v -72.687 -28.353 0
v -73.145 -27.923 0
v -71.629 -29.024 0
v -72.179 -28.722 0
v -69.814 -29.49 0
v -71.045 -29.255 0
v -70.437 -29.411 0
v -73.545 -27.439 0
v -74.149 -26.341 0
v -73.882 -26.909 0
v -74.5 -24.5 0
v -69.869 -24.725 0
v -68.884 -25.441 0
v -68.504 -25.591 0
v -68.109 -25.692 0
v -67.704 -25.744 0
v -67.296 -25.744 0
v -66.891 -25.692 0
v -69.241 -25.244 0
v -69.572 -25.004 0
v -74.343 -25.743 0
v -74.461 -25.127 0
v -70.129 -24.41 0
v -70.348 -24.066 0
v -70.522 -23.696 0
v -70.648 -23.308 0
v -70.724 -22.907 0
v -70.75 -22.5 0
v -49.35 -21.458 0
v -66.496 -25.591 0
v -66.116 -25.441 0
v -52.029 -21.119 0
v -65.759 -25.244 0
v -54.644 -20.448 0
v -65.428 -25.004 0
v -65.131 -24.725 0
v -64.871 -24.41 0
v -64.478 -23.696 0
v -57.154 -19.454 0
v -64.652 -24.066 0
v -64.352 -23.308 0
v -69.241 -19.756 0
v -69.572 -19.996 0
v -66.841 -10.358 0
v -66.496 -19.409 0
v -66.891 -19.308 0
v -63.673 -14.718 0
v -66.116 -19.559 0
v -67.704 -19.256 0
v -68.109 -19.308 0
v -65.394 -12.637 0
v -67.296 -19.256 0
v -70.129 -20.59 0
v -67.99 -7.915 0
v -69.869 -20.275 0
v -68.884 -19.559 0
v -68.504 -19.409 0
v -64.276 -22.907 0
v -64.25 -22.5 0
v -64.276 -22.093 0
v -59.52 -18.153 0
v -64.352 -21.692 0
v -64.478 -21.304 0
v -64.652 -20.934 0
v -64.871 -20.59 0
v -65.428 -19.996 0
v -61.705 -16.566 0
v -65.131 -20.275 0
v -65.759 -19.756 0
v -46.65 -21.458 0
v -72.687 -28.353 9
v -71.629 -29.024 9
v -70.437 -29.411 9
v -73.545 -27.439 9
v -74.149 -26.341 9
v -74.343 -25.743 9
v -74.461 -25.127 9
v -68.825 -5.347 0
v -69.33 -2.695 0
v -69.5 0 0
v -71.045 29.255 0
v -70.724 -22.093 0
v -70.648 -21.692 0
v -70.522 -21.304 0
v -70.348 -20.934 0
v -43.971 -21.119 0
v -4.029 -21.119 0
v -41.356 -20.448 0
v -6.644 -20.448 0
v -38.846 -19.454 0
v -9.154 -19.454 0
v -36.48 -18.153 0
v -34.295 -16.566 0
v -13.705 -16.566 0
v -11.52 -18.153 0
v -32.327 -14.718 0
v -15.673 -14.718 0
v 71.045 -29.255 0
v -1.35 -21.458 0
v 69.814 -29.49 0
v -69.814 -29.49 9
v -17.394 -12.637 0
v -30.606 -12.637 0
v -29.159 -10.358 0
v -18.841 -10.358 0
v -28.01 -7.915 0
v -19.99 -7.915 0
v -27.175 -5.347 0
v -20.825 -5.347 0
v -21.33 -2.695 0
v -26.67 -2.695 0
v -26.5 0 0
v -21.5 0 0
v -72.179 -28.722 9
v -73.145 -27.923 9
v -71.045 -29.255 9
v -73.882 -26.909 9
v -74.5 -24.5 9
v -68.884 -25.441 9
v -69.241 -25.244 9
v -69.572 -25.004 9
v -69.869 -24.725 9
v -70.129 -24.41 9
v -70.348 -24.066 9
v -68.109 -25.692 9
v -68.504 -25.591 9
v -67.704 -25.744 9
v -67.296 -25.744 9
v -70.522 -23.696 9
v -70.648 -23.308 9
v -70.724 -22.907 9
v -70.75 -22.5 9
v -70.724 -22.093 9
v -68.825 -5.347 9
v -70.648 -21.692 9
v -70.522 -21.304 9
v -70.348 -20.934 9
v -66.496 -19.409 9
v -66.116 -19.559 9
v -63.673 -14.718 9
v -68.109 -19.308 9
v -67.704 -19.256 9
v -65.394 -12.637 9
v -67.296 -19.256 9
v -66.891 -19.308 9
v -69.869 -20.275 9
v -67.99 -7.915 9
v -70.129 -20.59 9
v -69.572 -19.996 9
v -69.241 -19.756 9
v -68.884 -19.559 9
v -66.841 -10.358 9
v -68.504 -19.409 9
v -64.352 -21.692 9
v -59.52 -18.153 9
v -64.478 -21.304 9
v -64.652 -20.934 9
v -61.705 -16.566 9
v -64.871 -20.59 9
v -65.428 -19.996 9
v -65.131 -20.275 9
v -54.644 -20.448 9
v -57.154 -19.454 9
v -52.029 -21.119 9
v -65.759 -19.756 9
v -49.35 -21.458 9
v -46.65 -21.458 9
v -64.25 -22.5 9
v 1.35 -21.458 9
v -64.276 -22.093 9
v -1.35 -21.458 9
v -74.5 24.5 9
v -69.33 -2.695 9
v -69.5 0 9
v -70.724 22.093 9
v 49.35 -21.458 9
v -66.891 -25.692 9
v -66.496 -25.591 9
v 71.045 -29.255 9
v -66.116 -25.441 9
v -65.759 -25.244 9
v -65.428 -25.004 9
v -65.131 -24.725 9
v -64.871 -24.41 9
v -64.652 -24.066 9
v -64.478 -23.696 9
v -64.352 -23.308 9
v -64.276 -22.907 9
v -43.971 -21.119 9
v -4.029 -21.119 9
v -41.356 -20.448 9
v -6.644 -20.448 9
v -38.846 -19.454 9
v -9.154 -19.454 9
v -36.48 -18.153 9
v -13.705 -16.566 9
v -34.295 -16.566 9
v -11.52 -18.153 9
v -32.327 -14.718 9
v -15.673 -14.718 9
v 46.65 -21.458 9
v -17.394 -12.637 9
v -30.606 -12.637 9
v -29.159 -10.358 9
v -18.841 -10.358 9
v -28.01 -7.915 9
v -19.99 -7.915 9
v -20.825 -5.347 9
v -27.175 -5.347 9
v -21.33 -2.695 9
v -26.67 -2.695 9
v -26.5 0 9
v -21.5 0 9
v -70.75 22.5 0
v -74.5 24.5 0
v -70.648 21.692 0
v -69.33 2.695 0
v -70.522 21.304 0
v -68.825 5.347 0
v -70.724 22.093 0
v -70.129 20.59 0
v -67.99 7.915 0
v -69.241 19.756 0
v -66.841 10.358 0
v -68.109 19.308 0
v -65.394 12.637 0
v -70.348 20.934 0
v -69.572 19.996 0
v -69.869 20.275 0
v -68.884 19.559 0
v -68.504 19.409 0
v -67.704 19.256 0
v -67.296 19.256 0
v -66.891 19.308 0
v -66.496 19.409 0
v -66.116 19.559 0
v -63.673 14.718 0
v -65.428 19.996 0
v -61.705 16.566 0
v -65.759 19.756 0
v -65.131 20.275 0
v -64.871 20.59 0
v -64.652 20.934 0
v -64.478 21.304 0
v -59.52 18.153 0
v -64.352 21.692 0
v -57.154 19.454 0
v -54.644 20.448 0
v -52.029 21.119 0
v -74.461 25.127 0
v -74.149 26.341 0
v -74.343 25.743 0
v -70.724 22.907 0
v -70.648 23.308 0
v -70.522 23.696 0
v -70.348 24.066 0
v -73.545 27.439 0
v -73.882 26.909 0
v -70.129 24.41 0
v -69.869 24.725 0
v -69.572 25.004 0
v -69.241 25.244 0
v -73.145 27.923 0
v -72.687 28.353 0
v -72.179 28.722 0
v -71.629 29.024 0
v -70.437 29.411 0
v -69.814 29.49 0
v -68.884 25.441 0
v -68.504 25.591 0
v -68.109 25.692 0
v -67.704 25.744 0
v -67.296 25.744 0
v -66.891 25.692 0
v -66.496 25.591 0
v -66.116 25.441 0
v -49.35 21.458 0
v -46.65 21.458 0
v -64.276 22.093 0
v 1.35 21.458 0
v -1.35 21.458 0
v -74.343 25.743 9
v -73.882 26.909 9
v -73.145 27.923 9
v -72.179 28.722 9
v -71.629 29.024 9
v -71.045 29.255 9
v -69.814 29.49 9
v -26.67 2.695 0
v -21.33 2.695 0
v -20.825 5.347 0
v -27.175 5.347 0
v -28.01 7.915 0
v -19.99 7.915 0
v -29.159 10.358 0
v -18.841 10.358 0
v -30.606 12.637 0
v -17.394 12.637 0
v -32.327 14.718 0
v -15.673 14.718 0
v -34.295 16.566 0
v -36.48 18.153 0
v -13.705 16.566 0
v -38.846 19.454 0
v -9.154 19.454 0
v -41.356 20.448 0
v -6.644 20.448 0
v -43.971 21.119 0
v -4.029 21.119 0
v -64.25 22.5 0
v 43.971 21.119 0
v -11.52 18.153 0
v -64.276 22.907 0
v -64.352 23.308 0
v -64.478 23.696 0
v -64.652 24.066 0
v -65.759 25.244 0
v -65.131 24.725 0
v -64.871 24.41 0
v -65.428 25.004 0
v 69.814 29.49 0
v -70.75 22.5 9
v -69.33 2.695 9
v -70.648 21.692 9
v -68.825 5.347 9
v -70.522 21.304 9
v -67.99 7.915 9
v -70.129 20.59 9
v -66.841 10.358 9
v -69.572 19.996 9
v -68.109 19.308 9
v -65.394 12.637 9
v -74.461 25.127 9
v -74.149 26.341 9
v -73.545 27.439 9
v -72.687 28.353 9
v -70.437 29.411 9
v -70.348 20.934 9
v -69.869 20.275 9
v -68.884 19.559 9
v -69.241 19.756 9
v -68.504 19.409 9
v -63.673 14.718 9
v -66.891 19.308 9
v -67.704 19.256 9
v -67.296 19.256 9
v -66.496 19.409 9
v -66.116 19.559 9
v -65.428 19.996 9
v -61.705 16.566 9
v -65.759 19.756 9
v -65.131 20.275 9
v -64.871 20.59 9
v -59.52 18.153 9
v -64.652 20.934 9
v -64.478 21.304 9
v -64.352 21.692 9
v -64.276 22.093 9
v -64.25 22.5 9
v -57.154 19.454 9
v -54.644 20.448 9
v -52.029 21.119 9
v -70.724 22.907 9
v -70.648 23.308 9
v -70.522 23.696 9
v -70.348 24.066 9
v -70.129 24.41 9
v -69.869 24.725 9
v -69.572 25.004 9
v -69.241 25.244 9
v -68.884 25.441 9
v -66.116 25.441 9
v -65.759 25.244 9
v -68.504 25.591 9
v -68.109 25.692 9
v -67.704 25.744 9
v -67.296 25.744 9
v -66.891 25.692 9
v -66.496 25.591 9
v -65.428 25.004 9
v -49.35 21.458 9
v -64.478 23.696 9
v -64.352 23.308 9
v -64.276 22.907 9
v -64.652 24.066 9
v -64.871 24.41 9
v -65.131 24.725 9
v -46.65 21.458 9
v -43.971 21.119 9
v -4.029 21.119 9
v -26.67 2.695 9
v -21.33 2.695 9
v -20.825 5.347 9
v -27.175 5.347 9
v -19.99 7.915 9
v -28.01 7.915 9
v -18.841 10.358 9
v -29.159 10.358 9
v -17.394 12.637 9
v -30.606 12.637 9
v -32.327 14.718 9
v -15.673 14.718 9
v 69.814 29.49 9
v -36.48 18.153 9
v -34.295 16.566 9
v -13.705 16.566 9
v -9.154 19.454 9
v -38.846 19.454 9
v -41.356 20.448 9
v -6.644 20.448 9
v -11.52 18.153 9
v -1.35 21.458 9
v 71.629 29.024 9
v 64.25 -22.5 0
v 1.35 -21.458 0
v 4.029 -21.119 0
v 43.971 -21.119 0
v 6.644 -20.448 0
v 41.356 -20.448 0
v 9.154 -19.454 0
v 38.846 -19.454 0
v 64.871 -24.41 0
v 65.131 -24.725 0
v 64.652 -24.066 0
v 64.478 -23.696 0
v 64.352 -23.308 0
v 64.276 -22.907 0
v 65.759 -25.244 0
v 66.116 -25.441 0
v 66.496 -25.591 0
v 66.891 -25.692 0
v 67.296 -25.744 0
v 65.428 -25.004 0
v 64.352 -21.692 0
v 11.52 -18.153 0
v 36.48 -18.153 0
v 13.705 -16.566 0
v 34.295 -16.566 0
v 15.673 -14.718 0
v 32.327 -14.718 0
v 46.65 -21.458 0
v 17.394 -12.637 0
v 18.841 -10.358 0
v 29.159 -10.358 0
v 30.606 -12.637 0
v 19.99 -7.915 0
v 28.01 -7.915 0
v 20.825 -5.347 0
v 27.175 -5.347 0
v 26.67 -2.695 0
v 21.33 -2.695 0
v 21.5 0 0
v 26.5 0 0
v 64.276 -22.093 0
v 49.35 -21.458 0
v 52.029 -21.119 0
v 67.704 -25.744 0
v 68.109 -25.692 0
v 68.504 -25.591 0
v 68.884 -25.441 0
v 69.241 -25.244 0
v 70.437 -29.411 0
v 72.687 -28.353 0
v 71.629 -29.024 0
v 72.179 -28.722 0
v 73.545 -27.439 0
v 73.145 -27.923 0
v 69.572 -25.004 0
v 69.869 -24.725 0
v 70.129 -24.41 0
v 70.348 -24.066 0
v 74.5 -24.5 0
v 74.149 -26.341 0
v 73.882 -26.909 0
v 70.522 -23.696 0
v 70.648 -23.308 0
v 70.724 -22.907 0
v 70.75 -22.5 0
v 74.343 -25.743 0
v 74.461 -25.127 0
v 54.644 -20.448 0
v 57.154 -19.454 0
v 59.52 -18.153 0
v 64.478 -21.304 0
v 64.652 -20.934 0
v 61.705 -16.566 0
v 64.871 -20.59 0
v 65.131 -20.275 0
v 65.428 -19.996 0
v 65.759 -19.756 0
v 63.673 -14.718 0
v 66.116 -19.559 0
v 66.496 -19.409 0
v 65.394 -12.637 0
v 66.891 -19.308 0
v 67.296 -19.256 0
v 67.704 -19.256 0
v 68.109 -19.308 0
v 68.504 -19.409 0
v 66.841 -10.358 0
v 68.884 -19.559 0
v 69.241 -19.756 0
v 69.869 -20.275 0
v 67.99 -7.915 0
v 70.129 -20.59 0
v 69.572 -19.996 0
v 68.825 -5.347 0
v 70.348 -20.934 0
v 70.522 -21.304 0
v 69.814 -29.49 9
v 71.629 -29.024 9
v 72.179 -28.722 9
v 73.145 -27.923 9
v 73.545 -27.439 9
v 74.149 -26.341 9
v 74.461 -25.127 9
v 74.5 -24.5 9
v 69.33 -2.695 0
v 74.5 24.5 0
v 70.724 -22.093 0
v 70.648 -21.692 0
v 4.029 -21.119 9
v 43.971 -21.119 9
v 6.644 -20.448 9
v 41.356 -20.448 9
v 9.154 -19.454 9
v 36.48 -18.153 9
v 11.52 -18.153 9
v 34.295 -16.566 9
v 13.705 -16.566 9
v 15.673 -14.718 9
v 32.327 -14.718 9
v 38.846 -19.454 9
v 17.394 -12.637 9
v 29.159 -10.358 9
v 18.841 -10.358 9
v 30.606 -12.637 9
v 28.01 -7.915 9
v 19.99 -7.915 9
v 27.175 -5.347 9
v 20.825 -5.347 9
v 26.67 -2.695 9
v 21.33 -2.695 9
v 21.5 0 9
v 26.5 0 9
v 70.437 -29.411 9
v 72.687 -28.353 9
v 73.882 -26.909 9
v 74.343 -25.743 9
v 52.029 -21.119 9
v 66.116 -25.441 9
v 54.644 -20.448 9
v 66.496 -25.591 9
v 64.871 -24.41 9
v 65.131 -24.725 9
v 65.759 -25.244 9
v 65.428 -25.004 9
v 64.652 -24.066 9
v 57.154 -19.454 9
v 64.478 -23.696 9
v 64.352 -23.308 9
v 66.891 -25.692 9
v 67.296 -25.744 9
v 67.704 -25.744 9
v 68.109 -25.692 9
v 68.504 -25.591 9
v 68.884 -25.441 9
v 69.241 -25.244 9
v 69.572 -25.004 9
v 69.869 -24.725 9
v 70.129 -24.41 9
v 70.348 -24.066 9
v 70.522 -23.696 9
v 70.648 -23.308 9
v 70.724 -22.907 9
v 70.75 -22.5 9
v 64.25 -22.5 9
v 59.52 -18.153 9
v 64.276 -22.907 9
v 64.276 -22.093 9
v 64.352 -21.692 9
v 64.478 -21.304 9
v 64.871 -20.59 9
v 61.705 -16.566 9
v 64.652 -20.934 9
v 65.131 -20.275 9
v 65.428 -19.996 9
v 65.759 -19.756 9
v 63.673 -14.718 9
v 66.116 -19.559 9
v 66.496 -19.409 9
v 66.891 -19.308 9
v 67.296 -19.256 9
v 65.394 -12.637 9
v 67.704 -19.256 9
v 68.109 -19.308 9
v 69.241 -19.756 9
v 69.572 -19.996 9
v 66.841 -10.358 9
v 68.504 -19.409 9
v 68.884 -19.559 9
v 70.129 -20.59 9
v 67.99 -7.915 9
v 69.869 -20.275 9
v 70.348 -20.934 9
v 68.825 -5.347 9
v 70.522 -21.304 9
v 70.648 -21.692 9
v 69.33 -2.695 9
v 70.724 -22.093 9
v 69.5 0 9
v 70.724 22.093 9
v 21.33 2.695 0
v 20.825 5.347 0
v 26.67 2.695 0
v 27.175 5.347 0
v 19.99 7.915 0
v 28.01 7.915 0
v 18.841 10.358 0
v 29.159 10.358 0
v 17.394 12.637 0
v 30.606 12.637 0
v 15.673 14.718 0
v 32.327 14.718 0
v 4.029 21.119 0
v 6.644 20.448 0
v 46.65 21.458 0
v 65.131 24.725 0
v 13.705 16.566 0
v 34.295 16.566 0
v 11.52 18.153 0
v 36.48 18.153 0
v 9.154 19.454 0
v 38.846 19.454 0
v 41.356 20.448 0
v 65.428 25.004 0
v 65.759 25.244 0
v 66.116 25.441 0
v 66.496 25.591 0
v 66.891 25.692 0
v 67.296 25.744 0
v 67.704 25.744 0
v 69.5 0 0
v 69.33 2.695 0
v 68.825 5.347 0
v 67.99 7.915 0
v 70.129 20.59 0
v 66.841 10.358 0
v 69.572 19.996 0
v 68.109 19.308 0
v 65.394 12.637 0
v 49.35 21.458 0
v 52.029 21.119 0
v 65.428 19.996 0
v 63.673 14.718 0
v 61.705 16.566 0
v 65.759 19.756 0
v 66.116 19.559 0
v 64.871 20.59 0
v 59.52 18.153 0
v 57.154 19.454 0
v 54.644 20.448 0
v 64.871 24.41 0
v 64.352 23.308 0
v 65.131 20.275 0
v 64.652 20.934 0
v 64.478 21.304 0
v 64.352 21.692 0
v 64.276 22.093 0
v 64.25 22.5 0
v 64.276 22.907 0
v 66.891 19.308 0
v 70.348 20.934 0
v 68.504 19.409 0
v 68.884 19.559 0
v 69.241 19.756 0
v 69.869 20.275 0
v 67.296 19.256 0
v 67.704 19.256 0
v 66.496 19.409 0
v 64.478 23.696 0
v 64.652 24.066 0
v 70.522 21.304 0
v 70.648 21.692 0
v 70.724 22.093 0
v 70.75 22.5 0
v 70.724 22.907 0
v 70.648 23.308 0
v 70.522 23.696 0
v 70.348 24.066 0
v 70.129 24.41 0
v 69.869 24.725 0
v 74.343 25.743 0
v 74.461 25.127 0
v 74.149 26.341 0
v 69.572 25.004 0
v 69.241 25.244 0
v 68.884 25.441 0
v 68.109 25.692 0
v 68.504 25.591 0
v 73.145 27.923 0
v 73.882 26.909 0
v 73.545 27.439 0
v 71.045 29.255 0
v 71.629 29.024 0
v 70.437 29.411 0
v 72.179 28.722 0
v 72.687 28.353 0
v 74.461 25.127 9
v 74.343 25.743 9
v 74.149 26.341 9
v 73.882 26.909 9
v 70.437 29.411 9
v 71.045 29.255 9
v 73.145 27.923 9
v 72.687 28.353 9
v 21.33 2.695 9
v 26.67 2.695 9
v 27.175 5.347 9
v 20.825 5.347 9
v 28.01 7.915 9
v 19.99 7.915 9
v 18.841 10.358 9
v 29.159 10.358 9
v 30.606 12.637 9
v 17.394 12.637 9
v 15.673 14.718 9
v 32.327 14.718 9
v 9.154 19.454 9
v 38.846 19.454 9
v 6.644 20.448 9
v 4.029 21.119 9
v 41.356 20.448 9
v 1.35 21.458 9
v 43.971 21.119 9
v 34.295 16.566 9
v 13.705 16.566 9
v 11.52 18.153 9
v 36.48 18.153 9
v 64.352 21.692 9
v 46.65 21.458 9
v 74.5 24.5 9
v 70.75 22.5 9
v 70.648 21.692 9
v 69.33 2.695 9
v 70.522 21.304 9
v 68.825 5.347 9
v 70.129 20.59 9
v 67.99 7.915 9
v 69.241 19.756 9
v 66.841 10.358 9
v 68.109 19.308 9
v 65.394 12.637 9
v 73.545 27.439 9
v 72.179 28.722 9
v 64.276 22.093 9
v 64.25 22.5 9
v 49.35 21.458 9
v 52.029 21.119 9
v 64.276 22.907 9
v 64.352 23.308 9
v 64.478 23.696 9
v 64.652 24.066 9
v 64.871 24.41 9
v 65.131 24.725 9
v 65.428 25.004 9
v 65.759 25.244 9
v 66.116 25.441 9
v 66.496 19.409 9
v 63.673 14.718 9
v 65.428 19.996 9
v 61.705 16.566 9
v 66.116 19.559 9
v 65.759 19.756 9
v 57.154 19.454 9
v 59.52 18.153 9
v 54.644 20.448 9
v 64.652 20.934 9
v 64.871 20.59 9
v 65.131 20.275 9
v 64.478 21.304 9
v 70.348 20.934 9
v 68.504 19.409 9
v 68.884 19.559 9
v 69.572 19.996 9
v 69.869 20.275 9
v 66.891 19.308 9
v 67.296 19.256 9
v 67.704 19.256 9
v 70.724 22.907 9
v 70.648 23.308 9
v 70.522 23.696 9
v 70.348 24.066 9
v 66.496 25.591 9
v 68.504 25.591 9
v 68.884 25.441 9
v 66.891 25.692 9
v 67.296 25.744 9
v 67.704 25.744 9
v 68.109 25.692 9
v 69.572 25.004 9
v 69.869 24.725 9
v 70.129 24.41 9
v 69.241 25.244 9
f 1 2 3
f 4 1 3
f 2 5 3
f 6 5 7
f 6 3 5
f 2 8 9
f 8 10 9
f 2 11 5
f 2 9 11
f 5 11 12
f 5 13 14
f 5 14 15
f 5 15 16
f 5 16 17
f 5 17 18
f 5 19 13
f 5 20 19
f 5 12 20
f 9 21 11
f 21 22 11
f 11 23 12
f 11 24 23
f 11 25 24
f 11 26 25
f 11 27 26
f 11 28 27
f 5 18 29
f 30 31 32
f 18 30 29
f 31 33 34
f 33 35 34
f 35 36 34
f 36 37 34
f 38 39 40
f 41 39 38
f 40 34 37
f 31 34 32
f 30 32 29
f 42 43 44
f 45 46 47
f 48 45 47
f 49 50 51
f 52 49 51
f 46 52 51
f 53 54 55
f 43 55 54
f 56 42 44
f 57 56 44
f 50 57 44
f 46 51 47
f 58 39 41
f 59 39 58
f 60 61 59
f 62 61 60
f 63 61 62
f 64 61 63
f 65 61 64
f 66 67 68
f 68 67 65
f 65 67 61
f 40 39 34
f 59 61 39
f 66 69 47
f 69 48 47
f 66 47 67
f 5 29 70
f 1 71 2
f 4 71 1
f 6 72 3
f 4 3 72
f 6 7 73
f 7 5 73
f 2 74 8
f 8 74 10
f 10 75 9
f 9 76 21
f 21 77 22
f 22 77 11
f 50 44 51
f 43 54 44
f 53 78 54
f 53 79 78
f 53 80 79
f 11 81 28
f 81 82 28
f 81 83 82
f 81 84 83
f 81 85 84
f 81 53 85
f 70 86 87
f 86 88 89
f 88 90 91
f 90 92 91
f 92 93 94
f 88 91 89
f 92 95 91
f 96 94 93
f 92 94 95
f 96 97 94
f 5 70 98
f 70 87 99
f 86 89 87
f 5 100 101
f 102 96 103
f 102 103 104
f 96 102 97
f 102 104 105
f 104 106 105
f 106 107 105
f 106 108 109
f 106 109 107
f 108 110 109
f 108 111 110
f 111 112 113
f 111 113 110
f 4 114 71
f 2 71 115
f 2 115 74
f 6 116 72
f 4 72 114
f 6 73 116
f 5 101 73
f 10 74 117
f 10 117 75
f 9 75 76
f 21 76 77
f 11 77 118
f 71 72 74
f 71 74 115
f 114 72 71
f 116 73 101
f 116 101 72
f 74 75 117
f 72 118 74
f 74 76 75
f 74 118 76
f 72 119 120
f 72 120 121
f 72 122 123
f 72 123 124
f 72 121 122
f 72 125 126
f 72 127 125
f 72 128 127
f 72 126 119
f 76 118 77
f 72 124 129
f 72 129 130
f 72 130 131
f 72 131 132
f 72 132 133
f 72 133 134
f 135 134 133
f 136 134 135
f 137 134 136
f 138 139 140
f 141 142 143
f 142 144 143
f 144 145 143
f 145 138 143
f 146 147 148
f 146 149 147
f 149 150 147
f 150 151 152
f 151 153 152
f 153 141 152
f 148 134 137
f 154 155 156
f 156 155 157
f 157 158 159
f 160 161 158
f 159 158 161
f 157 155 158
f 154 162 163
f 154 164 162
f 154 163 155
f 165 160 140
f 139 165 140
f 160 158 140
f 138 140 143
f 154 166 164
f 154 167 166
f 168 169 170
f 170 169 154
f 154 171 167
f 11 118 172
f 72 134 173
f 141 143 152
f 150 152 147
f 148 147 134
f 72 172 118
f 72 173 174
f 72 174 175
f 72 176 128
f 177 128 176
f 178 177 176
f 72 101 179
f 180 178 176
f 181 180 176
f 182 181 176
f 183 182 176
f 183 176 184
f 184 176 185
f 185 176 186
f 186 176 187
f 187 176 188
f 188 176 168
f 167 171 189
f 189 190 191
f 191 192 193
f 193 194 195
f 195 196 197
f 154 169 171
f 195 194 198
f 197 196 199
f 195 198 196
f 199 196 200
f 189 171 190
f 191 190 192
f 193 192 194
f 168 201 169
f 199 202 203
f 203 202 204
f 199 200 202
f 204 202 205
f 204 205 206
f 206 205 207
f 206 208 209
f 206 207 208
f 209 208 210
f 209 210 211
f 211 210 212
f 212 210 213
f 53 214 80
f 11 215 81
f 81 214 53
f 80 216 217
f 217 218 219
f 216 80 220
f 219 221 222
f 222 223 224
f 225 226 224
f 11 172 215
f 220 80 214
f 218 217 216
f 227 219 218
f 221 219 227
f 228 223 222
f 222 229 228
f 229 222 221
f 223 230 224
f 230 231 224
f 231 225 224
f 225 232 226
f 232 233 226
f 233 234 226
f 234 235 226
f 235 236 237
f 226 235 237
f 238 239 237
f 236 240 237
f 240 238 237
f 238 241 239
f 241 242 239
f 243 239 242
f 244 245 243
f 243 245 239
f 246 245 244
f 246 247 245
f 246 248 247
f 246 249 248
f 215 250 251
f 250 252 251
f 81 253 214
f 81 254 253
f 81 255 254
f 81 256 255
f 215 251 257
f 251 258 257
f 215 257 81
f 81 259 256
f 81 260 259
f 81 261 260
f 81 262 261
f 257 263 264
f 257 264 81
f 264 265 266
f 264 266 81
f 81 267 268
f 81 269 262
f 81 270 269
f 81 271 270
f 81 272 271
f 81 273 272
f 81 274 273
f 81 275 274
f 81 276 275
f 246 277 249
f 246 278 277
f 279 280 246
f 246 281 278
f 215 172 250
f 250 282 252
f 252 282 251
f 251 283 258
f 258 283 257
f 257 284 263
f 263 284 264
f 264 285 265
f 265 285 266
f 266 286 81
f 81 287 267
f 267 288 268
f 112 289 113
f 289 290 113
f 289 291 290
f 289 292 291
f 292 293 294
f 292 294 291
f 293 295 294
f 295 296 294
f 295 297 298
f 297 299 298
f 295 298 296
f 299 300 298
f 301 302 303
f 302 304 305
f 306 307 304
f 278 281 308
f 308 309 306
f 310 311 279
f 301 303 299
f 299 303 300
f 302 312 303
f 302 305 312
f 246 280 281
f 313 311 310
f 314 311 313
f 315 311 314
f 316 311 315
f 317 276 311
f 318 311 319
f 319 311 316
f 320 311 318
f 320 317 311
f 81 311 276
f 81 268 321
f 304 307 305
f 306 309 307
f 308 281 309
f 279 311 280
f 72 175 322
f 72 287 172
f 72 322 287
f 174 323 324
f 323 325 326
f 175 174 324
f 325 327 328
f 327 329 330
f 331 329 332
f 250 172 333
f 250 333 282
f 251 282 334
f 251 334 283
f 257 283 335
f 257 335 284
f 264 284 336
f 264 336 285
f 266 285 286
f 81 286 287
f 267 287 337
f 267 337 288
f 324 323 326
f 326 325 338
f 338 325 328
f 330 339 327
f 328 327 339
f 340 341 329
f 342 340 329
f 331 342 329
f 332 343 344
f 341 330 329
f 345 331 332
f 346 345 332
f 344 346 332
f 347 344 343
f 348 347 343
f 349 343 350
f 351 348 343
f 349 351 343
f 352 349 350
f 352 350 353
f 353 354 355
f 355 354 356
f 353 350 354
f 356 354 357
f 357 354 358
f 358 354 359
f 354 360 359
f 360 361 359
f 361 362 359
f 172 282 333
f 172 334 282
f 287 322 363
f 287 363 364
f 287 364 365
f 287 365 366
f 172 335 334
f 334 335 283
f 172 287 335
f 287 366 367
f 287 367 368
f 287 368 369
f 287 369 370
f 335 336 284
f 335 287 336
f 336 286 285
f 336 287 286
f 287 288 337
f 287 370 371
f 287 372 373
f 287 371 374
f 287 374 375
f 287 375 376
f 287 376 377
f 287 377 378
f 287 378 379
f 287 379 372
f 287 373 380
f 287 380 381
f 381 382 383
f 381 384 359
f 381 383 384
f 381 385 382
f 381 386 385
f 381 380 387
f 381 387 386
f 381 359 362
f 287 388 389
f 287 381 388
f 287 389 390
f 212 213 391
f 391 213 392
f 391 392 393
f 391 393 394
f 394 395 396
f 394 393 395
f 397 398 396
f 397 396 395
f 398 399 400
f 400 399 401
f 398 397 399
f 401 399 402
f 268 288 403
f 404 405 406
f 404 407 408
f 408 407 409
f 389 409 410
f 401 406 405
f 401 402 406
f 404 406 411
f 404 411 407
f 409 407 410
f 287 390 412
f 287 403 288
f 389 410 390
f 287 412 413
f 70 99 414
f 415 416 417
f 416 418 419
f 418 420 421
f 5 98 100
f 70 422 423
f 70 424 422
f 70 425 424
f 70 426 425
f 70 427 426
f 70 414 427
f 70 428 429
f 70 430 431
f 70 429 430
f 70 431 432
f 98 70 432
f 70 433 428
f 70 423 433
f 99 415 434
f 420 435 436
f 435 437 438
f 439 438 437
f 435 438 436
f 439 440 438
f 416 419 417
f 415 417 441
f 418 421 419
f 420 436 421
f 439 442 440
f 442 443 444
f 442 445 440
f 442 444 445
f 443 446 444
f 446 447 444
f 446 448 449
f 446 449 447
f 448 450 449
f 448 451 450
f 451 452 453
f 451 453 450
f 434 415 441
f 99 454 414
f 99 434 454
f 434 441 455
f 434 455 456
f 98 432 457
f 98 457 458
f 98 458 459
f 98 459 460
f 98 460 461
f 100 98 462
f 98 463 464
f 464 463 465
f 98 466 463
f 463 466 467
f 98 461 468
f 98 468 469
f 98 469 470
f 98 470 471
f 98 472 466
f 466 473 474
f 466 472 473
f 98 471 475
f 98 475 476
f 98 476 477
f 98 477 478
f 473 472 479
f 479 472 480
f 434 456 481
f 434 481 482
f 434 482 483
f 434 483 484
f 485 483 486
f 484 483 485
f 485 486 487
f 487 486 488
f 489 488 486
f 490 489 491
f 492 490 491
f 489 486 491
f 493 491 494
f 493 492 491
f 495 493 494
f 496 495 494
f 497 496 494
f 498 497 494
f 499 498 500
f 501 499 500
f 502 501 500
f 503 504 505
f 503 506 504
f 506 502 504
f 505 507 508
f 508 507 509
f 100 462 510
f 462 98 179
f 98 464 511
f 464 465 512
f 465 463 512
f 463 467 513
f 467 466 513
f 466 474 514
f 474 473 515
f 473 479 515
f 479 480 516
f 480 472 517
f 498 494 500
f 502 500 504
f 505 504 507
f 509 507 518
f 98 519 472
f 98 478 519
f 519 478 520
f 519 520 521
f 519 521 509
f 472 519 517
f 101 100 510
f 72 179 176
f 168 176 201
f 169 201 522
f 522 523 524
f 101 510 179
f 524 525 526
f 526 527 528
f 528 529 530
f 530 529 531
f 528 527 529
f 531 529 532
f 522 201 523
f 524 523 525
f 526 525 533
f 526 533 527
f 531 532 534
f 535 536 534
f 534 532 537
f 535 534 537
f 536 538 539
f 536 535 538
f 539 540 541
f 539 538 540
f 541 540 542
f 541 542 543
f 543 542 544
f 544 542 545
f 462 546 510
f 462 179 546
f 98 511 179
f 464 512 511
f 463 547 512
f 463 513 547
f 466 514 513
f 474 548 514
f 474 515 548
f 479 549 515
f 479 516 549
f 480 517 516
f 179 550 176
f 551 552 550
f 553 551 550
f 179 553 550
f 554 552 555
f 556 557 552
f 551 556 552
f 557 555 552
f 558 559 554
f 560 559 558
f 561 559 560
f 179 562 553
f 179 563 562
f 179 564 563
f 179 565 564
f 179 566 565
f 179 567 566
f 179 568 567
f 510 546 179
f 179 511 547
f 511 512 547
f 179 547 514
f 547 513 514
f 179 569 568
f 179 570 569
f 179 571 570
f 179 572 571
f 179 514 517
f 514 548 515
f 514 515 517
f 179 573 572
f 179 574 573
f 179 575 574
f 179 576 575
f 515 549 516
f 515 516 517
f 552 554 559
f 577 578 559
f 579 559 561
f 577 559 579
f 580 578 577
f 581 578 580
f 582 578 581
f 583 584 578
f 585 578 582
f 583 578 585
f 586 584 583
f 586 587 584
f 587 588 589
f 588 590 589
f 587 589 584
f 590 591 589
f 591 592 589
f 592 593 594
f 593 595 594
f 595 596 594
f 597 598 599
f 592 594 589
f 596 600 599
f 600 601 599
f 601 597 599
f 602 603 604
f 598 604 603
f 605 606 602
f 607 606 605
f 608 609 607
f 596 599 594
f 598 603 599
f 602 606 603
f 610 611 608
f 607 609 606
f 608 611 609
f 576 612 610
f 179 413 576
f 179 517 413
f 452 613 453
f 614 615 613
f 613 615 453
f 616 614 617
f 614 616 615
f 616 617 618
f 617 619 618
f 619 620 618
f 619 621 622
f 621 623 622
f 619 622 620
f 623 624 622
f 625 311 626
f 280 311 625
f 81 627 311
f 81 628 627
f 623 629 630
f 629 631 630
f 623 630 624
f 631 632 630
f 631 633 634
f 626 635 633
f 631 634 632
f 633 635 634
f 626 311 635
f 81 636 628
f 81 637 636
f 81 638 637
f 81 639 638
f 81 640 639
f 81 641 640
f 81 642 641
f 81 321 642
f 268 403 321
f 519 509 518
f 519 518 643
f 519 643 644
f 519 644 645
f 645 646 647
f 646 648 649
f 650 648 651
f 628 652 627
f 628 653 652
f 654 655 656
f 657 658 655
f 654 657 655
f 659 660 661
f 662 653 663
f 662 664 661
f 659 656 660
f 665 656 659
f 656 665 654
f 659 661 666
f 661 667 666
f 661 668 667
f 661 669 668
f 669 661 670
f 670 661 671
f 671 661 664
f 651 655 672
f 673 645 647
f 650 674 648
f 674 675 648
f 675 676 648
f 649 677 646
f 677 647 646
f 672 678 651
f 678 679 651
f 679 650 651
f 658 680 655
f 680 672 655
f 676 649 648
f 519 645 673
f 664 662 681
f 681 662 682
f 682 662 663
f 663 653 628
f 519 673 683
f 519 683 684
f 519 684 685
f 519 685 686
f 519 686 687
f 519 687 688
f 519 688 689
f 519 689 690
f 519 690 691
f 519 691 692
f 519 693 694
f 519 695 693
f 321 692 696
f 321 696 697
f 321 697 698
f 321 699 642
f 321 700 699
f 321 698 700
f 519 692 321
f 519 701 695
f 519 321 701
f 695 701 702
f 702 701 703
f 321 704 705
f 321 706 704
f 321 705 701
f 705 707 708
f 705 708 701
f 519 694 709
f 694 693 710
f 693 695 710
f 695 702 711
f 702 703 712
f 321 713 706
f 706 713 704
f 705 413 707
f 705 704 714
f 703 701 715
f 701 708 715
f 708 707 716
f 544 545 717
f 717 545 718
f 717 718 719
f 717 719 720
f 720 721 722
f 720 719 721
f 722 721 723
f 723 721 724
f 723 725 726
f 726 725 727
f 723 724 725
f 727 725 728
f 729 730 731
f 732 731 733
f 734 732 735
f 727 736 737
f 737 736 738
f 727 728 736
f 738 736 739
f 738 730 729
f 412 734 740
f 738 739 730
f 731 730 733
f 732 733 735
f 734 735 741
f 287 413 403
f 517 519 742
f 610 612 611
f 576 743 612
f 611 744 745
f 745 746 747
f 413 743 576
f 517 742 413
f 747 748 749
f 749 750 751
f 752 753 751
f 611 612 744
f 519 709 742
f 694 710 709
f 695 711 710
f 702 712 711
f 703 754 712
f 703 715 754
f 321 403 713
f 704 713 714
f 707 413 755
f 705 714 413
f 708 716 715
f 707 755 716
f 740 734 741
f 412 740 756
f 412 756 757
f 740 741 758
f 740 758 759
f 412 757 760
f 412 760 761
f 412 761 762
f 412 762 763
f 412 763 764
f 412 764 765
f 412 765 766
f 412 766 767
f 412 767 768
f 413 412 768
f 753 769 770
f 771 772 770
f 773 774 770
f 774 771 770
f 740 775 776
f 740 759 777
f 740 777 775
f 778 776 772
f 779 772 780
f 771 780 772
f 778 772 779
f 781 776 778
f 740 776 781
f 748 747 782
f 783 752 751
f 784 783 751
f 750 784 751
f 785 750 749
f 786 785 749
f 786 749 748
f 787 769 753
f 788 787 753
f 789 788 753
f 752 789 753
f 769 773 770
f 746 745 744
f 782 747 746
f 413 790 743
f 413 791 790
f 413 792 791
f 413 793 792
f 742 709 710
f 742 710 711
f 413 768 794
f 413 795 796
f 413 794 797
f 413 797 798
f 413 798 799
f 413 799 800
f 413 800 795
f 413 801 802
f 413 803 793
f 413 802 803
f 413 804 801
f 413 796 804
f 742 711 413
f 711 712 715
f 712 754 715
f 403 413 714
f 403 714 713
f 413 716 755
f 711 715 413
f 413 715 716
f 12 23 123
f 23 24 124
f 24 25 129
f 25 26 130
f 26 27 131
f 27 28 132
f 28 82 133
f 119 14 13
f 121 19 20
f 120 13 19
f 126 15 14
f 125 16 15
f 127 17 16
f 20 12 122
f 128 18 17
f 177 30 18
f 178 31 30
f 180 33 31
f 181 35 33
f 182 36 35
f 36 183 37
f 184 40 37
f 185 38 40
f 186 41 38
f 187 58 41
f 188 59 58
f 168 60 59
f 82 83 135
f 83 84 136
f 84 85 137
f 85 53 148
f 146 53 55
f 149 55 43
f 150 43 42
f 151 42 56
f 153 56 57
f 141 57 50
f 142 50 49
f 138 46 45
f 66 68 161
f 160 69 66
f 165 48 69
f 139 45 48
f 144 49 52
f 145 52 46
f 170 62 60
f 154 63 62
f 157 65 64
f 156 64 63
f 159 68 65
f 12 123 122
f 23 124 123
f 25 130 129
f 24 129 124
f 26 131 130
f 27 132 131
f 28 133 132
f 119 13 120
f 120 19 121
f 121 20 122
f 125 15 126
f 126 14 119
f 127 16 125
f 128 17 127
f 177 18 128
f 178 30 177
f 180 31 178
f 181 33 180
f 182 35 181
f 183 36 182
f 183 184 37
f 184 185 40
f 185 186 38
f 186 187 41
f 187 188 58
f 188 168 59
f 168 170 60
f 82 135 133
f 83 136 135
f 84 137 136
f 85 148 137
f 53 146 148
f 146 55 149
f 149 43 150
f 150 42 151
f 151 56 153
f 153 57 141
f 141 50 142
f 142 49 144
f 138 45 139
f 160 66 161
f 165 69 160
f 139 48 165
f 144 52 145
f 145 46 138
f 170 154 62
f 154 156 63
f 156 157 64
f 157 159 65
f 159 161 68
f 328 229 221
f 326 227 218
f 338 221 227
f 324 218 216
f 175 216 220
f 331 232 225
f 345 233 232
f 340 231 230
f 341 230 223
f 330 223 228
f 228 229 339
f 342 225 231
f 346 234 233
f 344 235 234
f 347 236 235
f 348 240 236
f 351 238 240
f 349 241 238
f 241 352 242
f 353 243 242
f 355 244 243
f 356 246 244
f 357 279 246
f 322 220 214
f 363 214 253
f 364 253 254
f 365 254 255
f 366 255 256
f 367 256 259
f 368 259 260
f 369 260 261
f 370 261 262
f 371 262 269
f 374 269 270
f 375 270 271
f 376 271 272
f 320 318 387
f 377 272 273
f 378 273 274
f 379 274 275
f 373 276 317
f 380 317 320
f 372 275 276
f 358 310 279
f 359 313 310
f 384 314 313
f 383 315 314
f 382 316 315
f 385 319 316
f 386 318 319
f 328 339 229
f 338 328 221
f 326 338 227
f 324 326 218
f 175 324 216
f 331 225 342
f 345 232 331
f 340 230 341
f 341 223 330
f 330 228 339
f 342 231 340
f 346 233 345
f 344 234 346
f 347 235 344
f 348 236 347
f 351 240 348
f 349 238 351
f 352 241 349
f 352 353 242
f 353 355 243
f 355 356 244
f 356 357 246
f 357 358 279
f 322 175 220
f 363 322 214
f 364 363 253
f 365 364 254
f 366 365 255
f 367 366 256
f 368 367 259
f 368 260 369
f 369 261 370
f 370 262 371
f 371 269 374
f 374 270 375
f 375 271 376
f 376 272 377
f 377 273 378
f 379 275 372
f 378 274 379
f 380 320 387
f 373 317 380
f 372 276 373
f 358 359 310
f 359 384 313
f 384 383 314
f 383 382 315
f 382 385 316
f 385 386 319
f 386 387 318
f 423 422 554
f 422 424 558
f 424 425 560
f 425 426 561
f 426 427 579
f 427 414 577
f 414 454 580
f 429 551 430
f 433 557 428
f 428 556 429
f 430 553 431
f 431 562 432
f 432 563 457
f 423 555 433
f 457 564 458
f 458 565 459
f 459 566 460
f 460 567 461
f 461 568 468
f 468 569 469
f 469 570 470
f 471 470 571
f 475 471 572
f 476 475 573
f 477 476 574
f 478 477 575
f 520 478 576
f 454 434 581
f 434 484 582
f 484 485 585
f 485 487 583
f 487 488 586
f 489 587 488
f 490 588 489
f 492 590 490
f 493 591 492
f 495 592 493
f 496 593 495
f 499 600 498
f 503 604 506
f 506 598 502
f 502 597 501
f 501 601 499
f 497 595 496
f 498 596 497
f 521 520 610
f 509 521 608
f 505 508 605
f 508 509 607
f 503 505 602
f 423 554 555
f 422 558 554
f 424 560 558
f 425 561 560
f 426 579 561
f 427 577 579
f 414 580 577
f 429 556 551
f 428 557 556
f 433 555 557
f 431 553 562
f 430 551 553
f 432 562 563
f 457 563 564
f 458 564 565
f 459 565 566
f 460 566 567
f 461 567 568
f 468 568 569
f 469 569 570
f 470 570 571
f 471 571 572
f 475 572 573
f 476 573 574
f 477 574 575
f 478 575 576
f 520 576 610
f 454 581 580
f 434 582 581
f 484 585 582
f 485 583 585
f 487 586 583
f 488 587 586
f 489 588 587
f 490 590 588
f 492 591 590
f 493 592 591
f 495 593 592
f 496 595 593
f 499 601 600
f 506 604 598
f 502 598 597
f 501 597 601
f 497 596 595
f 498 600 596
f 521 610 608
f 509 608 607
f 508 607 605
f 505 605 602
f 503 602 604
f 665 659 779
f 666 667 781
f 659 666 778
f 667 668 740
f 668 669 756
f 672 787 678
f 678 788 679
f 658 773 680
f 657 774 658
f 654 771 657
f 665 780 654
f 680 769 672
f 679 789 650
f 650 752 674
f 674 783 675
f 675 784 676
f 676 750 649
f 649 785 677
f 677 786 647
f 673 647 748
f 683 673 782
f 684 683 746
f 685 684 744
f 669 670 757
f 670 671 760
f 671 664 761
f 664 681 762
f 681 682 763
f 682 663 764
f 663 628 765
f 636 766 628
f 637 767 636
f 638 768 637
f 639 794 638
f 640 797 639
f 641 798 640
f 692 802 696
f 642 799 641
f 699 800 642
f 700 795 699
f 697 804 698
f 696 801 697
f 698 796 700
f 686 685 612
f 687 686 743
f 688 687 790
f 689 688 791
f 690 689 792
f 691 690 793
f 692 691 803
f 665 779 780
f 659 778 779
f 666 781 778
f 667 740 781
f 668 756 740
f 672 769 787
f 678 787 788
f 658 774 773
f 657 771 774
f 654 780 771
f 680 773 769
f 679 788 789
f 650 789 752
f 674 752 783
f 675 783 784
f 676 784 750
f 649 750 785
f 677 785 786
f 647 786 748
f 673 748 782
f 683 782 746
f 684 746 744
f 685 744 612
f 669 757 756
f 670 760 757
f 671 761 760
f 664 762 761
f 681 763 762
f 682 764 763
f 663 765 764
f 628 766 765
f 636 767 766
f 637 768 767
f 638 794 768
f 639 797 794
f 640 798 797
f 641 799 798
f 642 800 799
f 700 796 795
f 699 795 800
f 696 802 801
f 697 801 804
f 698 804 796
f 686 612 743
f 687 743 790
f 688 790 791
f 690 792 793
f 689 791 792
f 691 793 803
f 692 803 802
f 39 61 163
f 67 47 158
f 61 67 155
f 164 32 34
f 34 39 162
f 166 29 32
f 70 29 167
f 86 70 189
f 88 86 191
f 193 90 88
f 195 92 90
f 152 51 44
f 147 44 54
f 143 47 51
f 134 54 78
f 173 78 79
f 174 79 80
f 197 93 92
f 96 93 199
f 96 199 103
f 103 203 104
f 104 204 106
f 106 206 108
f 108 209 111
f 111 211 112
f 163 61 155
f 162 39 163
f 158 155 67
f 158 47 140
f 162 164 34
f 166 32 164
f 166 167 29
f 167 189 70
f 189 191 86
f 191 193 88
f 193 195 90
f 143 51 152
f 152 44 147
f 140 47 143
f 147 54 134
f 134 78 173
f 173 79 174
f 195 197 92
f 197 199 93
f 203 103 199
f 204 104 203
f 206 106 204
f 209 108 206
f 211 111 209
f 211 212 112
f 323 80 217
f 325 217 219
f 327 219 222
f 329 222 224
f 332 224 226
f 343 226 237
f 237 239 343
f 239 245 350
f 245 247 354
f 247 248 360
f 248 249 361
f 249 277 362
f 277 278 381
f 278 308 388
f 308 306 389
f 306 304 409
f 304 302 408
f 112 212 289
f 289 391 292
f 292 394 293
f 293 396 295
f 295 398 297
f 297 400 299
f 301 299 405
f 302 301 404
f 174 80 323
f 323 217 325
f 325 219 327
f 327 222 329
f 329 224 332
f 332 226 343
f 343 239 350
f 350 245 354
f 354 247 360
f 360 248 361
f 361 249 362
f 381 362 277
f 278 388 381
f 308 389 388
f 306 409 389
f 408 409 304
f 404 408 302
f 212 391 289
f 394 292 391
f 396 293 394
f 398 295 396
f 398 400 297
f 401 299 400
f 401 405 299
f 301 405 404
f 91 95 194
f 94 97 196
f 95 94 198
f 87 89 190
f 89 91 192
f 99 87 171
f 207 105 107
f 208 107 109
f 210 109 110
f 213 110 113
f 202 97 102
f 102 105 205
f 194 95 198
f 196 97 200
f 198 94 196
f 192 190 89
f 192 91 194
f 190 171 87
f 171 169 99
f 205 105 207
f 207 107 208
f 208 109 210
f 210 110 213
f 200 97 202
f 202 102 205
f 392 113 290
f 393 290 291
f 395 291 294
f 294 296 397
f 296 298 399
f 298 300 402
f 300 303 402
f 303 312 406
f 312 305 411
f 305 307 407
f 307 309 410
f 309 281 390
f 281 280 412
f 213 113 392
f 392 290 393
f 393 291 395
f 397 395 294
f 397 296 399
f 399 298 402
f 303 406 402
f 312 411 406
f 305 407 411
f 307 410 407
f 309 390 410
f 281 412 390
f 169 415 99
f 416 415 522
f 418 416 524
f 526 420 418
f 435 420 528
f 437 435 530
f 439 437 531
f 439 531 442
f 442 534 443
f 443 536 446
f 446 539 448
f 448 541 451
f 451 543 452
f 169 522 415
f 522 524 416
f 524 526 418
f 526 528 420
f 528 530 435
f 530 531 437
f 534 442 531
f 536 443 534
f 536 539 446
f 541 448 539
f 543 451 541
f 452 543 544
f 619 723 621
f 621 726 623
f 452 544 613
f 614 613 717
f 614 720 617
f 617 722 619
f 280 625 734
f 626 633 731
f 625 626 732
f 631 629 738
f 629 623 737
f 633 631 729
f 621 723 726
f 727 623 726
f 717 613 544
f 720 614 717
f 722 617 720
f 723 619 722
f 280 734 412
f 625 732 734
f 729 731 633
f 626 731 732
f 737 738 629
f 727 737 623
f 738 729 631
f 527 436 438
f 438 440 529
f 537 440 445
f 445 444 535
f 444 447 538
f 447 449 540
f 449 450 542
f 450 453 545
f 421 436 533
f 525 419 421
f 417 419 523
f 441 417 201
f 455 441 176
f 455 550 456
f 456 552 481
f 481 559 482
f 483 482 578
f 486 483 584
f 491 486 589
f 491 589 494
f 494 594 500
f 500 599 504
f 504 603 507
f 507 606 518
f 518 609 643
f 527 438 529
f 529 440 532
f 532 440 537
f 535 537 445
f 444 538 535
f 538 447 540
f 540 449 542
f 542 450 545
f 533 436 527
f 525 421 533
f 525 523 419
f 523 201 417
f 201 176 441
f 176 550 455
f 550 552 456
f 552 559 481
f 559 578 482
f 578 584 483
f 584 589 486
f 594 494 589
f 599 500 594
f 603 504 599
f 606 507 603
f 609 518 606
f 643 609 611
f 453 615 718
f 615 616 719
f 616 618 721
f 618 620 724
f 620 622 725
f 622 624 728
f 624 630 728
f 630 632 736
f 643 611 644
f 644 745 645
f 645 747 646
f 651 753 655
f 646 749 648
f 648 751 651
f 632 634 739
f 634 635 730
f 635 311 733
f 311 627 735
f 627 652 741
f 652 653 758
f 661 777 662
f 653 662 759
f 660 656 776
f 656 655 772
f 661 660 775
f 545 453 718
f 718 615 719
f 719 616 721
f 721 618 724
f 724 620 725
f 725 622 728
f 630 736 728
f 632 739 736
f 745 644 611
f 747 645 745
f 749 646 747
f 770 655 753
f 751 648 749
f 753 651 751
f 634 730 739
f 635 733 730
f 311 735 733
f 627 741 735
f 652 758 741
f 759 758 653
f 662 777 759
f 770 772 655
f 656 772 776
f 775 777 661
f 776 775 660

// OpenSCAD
$fn = 50;

difference() {
	union() {
		hull() {
			translate(v = [-69.5, 24.5, 0]) {
				cylinder(h = 9, r = 5);
			}
			translate(v = [69.5, 24.5, 0]) {
				cylinder(h = 9, r = 5);
			}
			translate(v = [-69.5, -24.5, 0]) {
				cylinder(h = 9, r = 5);
			}
			translate(v = [69.5, -24.5, 0]) {
				cylinder(h = 9, r = 5);
			}
		}
	}
	union() {
		translate(v = [-67.5, -22.5, -100.0]) {
			cylinder(h = 200, r = 3.25);
		}
		translate(v = [-67.5, 22.5, -100.0]) {
			cylinder(h = 200, r = 3.25);
		}
		translate(v = [67.5, -22.5, -100.0]) {
			cylinder(h = 200, r = 3.25);
		}
		translate(v = [67.5, 22.5, -100.0]) {
			cylinder(h = 200, r = 3.25);
		}
		translate(v = [-67.5, -22.5, -100.0]) {
			cylinder(h = 200, r = 1.8);
		}
		translate(v = [-67.5, 22.5, -100.0]) {
			cylinder(h = 200, r = 1.8);
		}
		translate(v = [67.5, -22.5, -100.0]) {
			cylinder(h = 200, r = 1.8);
		}
		translate(v = [67.5, 22.5, -100.0]) {
			cylinder(h = 200, r = 1.8);
		}
		translate(v = [-48.0, 0, 0.0]) {
			cylinder(h = 9, r = 21.5);
		}
		cylinder(h = 9, r = 21.5);
		translate(v = [48.0, 0, 0.0]) {
			cylinder(h = 9, r = 21.5);
		}
	}
}
